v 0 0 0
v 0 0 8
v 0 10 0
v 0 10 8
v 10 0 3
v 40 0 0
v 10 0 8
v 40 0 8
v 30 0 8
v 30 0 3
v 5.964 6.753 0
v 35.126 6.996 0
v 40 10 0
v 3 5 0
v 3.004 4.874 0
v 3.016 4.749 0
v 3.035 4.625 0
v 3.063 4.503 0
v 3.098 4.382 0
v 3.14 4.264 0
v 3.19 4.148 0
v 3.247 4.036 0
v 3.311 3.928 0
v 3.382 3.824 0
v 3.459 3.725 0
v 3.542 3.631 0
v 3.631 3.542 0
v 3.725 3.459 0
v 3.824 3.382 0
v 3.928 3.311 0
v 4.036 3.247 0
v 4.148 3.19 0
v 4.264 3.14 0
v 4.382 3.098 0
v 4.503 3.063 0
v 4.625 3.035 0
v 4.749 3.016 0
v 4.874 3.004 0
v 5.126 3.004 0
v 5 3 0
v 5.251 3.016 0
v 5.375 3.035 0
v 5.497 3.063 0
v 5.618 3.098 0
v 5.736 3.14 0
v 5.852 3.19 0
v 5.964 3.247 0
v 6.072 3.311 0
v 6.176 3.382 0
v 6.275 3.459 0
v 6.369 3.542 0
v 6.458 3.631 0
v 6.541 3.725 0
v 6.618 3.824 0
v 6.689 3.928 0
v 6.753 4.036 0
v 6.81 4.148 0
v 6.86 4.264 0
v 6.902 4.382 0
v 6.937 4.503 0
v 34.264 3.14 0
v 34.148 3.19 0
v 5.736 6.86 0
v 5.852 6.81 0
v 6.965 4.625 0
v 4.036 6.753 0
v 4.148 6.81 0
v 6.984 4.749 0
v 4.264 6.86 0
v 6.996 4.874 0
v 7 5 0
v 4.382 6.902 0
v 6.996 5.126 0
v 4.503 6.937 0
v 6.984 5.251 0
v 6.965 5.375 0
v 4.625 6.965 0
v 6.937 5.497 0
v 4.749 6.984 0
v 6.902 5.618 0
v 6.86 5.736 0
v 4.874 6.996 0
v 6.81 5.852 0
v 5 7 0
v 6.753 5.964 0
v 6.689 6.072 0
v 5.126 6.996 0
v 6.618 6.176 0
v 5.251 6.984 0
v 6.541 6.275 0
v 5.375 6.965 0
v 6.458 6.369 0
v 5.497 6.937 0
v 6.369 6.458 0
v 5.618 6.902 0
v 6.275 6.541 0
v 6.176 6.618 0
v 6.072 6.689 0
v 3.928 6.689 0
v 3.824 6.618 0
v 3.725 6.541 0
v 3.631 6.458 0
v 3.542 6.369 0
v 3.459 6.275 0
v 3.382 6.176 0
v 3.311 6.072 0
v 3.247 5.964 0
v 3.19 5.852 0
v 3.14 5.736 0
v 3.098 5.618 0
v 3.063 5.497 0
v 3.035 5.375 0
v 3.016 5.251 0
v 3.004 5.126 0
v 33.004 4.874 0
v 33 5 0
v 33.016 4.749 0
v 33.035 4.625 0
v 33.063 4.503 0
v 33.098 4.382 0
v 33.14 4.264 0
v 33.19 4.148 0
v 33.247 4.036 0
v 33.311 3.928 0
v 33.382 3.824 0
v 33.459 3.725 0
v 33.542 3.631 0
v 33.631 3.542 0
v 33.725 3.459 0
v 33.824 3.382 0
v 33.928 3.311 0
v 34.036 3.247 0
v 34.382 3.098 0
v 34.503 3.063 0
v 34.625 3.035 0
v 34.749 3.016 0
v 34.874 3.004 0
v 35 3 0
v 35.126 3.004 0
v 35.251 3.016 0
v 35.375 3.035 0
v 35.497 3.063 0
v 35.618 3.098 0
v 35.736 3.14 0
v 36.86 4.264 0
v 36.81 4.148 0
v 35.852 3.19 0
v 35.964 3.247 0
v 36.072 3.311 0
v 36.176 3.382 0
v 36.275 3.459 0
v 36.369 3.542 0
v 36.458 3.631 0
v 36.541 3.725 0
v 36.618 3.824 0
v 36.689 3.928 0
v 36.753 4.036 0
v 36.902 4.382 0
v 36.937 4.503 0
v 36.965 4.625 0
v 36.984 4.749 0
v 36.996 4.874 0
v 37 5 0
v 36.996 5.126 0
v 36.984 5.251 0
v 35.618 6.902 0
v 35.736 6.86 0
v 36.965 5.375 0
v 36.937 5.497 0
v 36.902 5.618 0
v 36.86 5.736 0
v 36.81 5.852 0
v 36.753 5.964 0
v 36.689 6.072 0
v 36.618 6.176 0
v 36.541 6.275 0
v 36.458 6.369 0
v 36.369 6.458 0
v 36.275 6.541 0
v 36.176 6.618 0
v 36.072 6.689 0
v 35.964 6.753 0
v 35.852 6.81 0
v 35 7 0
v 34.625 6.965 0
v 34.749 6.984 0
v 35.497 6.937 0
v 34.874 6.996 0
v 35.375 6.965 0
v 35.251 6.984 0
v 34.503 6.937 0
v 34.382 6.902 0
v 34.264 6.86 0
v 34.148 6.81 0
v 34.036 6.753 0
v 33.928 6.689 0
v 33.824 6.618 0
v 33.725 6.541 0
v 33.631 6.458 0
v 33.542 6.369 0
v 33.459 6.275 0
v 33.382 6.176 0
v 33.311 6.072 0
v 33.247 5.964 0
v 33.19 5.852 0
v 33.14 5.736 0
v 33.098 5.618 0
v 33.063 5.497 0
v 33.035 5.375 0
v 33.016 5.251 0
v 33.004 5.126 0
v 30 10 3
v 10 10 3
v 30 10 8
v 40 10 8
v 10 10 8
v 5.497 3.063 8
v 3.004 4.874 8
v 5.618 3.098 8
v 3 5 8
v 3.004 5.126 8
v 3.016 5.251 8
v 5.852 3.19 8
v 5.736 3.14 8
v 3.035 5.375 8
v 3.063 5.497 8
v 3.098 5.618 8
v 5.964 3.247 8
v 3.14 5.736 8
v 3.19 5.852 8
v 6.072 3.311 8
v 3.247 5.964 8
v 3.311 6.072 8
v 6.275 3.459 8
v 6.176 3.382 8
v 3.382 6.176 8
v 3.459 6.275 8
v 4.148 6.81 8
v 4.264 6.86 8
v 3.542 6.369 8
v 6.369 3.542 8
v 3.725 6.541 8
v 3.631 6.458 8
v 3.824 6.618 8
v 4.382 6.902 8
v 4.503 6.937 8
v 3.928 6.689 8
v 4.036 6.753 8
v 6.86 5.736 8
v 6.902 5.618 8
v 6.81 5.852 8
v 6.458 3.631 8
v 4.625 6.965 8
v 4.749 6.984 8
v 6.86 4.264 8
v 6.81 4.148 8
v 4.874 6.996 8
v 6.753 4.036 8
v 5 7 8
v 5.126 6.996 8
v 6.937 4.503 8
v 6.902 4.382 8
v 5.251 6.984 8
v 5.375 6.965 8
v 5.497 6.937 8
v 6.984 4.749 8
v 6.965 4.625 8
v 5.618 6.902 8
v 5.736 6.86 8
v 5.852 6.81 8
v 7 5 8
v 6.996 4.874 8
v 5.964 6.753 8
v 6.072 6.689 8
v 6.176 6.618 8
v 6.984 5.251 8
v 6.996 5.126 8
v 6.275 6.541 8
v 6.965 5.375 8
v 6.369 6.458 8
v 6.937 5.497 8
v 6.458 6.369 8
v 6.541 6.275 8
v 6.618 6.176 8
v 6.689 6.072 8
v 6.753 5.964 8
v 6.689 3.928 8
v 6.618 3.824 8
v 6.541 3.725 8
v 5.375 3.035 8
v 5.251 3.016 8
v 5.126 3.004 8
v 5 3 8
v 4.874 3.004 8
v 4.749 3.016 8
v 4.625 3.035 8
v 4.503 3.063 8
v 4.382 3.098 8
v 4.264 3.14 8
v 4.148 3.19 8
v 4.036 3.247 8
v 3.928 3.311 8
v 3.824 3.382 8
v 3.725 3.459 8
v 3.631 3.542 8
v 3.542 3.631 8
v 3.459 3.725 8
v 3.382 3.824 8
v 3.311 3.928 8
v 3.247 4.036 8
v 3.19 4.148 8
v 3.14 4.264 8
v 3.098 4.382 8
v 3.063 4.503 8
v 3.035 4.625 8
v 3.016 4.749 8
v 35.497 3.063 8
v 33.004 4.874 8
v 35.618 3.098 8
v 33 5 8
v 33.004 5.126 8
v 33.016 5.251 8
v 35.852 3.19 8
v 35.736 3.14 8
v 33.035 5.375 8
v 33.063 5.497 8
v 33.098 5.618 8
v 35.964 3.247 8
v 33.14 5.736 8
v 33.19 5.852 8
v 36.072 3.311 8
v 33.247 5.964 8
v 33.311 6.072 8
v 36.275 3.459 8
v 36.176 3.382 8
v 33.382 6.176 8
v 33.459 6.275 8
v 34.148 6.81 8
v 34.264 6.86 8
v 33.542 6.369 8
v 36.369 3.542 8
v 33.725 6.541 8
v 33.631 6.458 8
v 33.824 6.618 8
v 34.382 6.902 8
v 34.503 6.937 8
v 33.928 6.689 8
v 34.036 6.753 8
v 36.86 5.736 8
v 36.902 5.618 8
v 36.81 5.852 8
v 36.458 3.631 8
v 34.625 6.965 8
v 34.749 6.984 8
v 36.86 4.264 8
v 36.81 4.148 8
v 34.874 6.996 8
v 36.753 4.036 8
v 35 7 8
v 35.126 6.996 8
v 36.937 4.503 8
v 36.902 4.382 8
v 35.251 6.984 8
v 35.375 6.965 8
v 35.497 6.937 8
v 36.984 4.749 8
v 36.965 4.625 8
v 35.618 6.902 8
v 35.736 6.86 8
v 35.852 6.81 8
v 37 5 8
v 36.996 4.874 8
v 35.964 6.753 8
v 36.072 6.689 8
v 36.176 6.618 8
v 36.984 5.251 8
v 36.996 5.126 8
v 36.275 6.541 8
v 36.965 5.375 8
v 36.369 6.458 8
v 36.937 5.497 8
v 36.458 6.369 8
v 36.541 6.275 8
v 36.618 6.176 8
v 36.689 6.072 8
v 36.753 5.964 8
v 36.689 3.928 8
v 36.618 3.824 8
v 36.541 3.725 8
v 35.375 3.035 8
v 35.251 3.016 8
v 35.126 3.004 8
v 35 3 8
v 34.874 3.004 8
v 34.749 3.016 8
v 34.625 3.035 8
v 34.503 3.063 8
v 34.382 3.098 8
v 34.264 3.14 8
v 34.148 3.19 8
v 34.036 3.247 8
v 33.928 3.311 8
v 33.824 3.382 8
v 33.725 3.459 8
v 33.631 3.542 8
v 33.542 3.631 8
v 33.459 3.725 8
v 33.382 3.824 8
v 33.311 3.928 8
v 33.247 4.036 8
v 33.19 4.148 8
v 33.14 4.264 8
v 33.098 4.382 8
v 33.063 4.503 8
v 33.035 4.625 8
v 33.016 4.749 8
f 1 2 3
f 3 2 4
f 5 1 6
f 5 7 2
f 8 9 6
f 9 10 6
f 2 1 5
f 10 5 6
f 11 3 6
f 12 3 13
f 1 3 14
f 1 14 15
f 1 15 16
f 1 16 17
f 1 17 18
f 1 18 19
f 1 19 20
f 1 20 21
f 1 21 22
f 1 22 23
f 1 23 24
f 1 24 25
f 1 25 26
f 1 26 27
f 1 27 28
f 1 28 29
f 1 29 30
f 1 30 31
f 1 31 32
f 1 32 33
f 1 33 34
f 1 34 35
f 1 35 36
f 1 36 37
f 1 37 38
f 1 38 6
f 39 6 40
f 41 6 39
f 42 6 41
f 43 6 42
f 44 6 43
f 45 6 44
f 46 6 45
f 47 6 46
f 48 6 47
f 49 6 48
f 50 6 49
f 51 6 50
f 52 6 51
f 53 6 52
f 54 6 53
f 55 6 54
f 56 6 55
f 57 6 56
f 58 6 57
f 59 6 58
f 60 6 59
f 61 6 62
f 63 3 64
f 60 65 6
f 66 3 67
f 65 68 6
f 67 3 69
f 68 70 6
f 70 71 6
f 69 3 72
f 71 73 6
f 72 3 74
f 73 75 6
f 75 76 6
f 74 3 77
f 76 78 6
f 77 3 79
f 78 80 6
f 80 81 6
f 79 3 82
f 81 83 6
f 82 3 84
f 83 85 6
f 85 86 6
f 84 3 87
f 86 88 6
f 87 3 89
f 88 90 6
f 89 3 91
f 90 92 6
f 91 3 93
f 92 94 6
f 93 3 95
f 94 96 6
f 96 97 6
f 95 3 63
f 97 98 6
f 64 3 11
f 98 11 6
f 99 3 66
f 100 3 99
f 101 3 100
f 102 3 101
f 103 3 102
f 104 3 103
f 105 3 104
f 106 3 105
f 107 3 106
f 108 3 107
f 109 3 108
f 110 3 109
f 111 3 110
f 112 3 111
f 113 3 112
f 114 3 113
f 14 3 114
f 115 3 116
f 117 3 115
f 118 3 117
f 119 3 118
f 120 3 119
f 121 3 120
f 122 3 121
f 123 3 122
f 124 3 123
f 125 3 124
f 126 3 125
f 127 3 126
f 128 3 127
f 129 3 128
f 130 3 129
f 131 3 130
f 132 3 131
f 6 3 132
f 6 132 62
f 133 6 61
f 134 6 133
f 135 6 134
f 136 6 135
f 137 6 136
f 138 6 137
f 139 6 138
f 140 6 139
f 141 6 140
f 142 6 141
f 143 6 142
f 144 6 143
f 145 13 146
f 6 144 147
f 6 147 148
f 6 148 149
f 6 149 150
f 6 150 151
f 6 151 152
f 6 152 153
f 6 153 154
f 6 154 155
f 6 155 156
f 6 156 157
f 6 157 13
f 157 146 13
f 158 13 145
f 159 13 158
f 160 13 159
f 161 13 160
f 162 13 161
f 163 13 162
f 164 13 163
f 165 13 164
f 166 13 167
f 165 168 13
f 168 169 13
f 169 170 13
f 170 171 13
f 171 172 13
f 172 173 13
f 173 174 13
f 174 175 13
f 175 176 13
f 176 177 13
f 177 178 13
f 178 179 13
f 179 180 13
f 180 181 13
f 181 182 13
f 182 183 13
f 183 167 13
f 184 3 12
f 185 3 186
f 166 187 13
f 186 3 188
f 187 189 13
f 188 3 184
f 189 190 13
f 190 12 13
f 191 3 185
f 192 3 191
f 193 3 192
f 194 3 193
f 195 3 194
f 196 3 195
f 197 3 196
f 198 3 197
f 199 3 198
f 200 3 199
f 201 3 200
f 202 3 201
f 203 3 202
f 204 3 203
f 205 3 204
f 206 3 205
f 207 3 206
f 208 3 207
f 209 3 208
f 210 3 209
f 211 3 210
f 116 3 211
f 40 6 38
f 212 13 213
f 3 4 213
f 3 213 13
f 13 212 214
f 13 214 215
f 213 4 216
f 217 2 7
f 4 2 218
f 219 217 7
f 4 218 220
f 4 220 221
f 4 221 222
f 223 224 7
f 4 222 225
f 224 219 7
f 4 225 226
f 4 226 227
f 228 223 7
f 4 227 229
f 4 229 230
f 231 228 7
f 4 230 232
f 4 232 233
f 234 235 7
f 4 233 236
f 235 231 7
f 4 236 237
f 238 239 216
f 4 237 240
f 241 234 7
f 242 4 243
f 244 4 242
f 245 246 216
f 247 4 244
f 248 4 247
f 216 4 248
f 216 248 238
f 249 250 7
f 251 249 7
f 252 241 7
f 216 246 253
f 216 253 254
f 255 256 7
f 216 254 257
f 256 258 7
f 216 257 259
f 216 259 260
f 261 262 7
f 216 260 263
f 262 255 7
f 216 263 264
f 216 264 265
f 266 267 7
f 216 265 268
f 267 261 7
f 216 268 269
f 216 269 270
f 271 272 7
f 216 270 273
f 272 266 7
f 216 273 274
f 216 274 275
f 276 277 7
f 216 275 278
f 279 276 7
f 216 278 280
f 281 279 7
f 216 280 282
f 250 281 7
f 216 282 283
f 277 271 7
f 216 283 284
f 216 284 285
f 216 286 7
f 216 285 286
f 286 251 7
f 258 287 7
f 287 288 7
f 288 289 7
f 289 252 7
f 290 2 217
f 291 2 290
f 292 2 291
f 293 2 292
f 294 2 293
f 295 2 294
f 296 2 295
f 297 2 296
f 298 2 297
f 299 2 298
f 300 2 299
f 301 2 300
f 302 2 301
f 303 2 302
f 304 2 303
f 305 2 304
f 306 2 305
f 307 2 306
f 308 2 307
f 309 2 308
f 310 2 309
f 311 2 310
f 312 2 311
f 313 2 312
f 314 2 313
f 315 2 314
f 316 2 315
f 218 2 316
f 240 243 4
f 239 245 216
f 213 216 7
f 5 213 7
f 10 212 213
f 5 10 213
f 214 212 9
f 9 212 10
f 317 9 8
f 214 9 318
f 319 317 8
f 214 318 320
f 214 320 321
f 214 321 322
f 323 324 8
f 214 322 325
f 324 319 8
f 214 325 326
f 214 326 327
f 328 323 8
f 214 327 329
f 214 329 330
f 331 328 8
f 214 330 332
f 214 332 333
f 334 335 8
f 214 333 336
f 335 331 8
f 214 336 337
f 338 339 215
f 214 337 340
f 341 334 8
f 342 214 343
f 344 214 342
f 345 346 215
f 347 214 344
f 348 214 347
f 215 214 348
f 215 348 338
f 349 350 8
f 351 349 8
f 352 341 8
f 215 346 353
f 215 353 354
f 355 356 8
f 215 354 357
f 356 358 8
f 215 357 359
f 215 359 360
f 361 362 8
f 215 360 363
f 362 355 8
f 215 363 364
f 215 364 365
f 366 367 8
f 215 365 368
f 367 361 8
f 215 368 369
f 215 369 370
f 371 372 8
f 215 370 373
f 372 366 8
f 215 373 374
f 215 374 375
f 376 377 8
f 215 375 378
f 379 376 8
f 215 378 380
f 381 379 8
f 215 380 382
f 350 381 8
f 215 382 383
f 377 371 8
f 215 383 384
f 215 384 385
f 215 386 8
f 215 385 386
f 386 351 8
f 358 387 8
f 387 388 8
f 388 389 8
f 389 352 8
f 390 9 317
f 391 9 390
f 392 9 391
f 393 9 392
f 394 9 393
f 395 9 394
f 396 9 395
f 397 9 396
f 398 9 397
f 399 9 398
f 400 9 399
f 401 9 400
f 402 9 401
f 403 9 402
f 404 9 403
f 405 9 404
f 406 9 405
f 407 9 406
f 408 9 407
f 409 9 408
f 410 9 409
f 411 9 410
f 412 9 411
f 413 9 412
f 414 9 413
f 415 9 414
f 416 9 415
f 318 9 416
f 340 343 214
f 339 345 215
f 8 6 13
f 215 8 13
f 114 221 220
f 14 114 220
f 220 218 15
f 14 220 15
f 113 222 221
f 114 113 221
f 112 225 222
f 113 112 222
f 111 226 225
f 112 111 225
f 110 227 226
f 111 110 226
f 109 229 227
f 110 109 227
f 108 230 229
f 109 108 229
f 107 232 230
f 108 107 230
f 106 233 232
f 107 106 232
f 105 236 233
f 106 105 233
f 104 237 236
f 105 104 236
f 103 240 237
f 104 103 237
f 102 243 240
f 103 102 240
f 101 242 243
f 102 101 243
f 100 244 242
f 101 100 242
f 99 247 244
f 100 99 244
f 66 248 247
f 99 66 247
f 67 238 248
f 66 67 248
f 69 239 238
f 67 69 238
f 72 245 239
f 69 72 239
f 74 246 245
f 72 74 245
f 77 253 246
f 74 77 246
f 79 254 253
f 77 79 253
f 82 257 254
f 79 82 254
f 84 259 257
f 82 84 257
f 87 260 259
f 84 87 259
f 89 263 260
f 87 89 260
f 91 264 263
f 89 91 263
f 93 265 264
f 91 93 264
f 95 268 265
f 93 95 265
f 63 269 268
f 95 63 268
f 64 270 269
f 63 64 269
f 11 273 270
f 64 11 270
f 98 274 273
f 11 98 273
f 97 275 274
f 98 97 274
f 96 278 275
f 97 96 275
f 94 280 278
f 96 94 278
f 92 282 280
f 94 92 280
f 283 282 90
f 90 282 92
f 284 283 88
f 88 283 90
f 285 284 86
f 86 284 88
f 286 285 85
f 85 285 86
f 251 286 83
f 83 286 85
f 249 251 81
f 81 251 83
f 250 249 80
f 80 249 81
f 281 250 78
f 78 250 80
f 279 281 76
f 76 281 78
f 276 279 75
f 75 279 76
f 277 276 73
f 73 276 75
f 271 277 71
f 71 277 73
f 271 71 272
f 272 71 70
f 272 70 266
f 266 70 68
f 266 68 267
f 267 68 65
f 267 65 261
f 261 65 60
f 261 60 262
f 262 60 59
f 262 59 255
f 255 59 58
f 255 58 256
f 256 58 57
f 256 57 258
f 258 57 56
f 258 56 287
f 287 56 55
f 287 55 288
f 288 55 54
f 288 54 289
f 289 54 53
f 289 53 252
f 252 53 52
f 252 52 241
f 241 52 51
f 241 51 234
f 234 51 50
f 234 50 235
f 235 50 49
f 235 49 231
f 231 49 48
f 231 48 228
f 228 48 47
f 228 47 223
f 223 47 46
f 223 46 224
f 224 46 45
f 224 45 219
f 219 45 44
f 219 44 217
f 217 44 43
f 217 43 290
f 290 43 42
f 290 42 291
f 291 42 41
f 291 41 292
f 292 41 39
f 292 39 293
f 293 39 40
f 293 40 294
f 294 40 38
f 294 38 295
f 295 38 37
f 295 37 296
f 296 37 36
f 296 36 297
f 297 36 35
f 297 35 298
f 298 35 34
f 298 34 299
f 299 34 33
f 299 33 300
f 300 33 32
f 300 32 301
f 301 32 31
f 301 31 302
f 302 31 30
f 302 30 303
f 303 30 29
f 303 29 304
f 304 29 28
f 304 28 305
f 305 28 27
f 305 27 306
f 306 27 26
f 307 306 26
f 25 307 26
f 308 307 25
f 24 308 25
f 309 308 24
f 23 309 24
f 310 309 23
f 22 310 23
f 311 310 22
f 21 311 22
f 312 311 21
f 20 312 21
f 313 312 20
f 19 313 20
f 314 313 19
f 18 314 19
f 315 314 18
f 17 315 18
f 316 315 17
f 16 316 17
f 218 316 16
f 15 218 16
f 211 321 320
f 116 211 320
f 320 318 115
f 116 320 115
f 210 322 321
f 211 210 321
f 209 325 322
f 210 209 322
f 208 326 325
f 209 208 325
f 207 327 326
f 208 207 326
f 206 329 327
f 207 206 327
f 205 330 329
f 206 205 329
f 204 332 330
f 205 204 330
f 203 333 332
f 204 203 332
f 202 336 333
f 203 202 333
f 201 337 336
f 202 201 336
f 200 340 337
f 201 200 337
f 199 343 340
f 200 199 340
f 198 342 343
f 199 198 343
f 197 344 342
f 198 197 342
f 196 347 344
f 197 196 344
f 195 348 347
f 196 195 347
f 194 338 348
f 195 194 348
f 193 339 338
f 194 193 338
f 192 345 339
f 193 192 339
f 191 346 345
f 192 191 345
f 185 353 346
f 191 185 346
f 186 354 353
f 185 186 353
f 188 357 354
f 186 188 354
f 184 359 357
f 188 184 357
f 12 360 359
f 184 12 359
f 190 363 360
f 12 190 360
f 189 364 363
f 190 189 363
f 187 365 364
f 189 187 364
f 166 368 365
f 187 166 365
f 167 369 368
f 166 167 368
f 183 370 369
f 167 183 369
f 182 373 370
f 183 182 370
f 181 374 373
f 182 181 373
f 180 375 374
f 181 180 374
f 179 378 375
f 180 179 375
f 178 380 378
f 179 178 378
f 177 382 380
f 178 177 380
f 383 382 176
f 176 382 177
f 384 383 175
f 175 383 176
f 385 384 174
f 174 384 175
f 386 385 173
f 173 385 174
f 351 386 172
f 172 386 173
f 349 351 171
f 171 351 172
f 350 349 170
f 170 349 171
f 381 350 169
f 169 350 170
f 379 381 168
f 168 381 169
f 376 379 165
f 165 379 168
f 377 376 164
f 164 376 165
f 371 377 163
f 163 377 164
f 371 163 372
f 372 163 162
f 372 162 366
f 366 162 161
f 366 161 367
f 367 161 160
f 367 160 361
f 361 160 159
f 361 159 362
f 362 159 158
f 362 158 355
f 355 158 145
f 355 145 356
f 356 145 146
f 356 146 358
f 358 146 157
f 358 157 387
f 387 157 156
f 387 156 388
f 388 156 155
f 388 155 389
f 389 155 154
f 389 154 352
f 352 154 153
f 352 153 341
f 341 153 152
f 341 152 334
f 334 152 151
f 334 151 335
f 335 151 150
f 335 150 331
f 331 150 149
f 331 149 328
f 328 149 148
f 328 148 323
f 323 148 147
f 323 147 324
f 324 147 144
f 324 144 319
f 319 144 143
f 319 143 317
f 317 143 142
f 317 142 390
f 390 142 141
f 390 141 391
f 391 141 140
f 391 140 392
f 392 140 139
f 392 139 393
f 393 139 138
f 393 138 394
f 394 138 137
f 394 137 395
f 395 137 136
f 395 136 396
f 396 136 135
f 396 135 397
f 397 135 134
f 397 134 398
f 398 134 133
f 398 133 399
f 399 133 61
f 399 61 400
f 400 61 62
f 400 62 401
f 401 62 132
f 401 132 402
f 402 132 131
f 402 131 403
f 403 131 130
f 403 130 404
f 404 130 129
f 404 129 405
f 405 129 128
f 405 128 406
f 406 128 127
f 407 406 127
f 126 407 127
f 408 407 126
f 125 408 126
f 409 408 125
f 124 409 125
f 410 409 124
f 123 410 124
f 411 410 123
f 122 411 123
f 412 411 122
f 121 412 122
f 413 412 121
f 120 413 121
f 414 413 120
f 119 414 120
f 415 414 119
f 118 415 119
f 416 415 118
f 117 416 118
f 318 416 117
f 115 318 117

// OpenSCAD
r_m3=2;
hauteur=8;
long=40;
larg=10;
espace=20;

module clip(){
difference(){
	cube([long,larg,hauteur]);

	translate([5,larg/2,-5]){cylinder(h = hauteur+10, r = r_m3, $fn=100);}
	translate([long-5,larg/2,-5]){cylinder(h = hauteur+10, r = r_m3, $fn=100);}
	
	translate([long/2-espace/2,-5,3]){cube([espace,larg+10,hauteur]);}

}

}
clip();
